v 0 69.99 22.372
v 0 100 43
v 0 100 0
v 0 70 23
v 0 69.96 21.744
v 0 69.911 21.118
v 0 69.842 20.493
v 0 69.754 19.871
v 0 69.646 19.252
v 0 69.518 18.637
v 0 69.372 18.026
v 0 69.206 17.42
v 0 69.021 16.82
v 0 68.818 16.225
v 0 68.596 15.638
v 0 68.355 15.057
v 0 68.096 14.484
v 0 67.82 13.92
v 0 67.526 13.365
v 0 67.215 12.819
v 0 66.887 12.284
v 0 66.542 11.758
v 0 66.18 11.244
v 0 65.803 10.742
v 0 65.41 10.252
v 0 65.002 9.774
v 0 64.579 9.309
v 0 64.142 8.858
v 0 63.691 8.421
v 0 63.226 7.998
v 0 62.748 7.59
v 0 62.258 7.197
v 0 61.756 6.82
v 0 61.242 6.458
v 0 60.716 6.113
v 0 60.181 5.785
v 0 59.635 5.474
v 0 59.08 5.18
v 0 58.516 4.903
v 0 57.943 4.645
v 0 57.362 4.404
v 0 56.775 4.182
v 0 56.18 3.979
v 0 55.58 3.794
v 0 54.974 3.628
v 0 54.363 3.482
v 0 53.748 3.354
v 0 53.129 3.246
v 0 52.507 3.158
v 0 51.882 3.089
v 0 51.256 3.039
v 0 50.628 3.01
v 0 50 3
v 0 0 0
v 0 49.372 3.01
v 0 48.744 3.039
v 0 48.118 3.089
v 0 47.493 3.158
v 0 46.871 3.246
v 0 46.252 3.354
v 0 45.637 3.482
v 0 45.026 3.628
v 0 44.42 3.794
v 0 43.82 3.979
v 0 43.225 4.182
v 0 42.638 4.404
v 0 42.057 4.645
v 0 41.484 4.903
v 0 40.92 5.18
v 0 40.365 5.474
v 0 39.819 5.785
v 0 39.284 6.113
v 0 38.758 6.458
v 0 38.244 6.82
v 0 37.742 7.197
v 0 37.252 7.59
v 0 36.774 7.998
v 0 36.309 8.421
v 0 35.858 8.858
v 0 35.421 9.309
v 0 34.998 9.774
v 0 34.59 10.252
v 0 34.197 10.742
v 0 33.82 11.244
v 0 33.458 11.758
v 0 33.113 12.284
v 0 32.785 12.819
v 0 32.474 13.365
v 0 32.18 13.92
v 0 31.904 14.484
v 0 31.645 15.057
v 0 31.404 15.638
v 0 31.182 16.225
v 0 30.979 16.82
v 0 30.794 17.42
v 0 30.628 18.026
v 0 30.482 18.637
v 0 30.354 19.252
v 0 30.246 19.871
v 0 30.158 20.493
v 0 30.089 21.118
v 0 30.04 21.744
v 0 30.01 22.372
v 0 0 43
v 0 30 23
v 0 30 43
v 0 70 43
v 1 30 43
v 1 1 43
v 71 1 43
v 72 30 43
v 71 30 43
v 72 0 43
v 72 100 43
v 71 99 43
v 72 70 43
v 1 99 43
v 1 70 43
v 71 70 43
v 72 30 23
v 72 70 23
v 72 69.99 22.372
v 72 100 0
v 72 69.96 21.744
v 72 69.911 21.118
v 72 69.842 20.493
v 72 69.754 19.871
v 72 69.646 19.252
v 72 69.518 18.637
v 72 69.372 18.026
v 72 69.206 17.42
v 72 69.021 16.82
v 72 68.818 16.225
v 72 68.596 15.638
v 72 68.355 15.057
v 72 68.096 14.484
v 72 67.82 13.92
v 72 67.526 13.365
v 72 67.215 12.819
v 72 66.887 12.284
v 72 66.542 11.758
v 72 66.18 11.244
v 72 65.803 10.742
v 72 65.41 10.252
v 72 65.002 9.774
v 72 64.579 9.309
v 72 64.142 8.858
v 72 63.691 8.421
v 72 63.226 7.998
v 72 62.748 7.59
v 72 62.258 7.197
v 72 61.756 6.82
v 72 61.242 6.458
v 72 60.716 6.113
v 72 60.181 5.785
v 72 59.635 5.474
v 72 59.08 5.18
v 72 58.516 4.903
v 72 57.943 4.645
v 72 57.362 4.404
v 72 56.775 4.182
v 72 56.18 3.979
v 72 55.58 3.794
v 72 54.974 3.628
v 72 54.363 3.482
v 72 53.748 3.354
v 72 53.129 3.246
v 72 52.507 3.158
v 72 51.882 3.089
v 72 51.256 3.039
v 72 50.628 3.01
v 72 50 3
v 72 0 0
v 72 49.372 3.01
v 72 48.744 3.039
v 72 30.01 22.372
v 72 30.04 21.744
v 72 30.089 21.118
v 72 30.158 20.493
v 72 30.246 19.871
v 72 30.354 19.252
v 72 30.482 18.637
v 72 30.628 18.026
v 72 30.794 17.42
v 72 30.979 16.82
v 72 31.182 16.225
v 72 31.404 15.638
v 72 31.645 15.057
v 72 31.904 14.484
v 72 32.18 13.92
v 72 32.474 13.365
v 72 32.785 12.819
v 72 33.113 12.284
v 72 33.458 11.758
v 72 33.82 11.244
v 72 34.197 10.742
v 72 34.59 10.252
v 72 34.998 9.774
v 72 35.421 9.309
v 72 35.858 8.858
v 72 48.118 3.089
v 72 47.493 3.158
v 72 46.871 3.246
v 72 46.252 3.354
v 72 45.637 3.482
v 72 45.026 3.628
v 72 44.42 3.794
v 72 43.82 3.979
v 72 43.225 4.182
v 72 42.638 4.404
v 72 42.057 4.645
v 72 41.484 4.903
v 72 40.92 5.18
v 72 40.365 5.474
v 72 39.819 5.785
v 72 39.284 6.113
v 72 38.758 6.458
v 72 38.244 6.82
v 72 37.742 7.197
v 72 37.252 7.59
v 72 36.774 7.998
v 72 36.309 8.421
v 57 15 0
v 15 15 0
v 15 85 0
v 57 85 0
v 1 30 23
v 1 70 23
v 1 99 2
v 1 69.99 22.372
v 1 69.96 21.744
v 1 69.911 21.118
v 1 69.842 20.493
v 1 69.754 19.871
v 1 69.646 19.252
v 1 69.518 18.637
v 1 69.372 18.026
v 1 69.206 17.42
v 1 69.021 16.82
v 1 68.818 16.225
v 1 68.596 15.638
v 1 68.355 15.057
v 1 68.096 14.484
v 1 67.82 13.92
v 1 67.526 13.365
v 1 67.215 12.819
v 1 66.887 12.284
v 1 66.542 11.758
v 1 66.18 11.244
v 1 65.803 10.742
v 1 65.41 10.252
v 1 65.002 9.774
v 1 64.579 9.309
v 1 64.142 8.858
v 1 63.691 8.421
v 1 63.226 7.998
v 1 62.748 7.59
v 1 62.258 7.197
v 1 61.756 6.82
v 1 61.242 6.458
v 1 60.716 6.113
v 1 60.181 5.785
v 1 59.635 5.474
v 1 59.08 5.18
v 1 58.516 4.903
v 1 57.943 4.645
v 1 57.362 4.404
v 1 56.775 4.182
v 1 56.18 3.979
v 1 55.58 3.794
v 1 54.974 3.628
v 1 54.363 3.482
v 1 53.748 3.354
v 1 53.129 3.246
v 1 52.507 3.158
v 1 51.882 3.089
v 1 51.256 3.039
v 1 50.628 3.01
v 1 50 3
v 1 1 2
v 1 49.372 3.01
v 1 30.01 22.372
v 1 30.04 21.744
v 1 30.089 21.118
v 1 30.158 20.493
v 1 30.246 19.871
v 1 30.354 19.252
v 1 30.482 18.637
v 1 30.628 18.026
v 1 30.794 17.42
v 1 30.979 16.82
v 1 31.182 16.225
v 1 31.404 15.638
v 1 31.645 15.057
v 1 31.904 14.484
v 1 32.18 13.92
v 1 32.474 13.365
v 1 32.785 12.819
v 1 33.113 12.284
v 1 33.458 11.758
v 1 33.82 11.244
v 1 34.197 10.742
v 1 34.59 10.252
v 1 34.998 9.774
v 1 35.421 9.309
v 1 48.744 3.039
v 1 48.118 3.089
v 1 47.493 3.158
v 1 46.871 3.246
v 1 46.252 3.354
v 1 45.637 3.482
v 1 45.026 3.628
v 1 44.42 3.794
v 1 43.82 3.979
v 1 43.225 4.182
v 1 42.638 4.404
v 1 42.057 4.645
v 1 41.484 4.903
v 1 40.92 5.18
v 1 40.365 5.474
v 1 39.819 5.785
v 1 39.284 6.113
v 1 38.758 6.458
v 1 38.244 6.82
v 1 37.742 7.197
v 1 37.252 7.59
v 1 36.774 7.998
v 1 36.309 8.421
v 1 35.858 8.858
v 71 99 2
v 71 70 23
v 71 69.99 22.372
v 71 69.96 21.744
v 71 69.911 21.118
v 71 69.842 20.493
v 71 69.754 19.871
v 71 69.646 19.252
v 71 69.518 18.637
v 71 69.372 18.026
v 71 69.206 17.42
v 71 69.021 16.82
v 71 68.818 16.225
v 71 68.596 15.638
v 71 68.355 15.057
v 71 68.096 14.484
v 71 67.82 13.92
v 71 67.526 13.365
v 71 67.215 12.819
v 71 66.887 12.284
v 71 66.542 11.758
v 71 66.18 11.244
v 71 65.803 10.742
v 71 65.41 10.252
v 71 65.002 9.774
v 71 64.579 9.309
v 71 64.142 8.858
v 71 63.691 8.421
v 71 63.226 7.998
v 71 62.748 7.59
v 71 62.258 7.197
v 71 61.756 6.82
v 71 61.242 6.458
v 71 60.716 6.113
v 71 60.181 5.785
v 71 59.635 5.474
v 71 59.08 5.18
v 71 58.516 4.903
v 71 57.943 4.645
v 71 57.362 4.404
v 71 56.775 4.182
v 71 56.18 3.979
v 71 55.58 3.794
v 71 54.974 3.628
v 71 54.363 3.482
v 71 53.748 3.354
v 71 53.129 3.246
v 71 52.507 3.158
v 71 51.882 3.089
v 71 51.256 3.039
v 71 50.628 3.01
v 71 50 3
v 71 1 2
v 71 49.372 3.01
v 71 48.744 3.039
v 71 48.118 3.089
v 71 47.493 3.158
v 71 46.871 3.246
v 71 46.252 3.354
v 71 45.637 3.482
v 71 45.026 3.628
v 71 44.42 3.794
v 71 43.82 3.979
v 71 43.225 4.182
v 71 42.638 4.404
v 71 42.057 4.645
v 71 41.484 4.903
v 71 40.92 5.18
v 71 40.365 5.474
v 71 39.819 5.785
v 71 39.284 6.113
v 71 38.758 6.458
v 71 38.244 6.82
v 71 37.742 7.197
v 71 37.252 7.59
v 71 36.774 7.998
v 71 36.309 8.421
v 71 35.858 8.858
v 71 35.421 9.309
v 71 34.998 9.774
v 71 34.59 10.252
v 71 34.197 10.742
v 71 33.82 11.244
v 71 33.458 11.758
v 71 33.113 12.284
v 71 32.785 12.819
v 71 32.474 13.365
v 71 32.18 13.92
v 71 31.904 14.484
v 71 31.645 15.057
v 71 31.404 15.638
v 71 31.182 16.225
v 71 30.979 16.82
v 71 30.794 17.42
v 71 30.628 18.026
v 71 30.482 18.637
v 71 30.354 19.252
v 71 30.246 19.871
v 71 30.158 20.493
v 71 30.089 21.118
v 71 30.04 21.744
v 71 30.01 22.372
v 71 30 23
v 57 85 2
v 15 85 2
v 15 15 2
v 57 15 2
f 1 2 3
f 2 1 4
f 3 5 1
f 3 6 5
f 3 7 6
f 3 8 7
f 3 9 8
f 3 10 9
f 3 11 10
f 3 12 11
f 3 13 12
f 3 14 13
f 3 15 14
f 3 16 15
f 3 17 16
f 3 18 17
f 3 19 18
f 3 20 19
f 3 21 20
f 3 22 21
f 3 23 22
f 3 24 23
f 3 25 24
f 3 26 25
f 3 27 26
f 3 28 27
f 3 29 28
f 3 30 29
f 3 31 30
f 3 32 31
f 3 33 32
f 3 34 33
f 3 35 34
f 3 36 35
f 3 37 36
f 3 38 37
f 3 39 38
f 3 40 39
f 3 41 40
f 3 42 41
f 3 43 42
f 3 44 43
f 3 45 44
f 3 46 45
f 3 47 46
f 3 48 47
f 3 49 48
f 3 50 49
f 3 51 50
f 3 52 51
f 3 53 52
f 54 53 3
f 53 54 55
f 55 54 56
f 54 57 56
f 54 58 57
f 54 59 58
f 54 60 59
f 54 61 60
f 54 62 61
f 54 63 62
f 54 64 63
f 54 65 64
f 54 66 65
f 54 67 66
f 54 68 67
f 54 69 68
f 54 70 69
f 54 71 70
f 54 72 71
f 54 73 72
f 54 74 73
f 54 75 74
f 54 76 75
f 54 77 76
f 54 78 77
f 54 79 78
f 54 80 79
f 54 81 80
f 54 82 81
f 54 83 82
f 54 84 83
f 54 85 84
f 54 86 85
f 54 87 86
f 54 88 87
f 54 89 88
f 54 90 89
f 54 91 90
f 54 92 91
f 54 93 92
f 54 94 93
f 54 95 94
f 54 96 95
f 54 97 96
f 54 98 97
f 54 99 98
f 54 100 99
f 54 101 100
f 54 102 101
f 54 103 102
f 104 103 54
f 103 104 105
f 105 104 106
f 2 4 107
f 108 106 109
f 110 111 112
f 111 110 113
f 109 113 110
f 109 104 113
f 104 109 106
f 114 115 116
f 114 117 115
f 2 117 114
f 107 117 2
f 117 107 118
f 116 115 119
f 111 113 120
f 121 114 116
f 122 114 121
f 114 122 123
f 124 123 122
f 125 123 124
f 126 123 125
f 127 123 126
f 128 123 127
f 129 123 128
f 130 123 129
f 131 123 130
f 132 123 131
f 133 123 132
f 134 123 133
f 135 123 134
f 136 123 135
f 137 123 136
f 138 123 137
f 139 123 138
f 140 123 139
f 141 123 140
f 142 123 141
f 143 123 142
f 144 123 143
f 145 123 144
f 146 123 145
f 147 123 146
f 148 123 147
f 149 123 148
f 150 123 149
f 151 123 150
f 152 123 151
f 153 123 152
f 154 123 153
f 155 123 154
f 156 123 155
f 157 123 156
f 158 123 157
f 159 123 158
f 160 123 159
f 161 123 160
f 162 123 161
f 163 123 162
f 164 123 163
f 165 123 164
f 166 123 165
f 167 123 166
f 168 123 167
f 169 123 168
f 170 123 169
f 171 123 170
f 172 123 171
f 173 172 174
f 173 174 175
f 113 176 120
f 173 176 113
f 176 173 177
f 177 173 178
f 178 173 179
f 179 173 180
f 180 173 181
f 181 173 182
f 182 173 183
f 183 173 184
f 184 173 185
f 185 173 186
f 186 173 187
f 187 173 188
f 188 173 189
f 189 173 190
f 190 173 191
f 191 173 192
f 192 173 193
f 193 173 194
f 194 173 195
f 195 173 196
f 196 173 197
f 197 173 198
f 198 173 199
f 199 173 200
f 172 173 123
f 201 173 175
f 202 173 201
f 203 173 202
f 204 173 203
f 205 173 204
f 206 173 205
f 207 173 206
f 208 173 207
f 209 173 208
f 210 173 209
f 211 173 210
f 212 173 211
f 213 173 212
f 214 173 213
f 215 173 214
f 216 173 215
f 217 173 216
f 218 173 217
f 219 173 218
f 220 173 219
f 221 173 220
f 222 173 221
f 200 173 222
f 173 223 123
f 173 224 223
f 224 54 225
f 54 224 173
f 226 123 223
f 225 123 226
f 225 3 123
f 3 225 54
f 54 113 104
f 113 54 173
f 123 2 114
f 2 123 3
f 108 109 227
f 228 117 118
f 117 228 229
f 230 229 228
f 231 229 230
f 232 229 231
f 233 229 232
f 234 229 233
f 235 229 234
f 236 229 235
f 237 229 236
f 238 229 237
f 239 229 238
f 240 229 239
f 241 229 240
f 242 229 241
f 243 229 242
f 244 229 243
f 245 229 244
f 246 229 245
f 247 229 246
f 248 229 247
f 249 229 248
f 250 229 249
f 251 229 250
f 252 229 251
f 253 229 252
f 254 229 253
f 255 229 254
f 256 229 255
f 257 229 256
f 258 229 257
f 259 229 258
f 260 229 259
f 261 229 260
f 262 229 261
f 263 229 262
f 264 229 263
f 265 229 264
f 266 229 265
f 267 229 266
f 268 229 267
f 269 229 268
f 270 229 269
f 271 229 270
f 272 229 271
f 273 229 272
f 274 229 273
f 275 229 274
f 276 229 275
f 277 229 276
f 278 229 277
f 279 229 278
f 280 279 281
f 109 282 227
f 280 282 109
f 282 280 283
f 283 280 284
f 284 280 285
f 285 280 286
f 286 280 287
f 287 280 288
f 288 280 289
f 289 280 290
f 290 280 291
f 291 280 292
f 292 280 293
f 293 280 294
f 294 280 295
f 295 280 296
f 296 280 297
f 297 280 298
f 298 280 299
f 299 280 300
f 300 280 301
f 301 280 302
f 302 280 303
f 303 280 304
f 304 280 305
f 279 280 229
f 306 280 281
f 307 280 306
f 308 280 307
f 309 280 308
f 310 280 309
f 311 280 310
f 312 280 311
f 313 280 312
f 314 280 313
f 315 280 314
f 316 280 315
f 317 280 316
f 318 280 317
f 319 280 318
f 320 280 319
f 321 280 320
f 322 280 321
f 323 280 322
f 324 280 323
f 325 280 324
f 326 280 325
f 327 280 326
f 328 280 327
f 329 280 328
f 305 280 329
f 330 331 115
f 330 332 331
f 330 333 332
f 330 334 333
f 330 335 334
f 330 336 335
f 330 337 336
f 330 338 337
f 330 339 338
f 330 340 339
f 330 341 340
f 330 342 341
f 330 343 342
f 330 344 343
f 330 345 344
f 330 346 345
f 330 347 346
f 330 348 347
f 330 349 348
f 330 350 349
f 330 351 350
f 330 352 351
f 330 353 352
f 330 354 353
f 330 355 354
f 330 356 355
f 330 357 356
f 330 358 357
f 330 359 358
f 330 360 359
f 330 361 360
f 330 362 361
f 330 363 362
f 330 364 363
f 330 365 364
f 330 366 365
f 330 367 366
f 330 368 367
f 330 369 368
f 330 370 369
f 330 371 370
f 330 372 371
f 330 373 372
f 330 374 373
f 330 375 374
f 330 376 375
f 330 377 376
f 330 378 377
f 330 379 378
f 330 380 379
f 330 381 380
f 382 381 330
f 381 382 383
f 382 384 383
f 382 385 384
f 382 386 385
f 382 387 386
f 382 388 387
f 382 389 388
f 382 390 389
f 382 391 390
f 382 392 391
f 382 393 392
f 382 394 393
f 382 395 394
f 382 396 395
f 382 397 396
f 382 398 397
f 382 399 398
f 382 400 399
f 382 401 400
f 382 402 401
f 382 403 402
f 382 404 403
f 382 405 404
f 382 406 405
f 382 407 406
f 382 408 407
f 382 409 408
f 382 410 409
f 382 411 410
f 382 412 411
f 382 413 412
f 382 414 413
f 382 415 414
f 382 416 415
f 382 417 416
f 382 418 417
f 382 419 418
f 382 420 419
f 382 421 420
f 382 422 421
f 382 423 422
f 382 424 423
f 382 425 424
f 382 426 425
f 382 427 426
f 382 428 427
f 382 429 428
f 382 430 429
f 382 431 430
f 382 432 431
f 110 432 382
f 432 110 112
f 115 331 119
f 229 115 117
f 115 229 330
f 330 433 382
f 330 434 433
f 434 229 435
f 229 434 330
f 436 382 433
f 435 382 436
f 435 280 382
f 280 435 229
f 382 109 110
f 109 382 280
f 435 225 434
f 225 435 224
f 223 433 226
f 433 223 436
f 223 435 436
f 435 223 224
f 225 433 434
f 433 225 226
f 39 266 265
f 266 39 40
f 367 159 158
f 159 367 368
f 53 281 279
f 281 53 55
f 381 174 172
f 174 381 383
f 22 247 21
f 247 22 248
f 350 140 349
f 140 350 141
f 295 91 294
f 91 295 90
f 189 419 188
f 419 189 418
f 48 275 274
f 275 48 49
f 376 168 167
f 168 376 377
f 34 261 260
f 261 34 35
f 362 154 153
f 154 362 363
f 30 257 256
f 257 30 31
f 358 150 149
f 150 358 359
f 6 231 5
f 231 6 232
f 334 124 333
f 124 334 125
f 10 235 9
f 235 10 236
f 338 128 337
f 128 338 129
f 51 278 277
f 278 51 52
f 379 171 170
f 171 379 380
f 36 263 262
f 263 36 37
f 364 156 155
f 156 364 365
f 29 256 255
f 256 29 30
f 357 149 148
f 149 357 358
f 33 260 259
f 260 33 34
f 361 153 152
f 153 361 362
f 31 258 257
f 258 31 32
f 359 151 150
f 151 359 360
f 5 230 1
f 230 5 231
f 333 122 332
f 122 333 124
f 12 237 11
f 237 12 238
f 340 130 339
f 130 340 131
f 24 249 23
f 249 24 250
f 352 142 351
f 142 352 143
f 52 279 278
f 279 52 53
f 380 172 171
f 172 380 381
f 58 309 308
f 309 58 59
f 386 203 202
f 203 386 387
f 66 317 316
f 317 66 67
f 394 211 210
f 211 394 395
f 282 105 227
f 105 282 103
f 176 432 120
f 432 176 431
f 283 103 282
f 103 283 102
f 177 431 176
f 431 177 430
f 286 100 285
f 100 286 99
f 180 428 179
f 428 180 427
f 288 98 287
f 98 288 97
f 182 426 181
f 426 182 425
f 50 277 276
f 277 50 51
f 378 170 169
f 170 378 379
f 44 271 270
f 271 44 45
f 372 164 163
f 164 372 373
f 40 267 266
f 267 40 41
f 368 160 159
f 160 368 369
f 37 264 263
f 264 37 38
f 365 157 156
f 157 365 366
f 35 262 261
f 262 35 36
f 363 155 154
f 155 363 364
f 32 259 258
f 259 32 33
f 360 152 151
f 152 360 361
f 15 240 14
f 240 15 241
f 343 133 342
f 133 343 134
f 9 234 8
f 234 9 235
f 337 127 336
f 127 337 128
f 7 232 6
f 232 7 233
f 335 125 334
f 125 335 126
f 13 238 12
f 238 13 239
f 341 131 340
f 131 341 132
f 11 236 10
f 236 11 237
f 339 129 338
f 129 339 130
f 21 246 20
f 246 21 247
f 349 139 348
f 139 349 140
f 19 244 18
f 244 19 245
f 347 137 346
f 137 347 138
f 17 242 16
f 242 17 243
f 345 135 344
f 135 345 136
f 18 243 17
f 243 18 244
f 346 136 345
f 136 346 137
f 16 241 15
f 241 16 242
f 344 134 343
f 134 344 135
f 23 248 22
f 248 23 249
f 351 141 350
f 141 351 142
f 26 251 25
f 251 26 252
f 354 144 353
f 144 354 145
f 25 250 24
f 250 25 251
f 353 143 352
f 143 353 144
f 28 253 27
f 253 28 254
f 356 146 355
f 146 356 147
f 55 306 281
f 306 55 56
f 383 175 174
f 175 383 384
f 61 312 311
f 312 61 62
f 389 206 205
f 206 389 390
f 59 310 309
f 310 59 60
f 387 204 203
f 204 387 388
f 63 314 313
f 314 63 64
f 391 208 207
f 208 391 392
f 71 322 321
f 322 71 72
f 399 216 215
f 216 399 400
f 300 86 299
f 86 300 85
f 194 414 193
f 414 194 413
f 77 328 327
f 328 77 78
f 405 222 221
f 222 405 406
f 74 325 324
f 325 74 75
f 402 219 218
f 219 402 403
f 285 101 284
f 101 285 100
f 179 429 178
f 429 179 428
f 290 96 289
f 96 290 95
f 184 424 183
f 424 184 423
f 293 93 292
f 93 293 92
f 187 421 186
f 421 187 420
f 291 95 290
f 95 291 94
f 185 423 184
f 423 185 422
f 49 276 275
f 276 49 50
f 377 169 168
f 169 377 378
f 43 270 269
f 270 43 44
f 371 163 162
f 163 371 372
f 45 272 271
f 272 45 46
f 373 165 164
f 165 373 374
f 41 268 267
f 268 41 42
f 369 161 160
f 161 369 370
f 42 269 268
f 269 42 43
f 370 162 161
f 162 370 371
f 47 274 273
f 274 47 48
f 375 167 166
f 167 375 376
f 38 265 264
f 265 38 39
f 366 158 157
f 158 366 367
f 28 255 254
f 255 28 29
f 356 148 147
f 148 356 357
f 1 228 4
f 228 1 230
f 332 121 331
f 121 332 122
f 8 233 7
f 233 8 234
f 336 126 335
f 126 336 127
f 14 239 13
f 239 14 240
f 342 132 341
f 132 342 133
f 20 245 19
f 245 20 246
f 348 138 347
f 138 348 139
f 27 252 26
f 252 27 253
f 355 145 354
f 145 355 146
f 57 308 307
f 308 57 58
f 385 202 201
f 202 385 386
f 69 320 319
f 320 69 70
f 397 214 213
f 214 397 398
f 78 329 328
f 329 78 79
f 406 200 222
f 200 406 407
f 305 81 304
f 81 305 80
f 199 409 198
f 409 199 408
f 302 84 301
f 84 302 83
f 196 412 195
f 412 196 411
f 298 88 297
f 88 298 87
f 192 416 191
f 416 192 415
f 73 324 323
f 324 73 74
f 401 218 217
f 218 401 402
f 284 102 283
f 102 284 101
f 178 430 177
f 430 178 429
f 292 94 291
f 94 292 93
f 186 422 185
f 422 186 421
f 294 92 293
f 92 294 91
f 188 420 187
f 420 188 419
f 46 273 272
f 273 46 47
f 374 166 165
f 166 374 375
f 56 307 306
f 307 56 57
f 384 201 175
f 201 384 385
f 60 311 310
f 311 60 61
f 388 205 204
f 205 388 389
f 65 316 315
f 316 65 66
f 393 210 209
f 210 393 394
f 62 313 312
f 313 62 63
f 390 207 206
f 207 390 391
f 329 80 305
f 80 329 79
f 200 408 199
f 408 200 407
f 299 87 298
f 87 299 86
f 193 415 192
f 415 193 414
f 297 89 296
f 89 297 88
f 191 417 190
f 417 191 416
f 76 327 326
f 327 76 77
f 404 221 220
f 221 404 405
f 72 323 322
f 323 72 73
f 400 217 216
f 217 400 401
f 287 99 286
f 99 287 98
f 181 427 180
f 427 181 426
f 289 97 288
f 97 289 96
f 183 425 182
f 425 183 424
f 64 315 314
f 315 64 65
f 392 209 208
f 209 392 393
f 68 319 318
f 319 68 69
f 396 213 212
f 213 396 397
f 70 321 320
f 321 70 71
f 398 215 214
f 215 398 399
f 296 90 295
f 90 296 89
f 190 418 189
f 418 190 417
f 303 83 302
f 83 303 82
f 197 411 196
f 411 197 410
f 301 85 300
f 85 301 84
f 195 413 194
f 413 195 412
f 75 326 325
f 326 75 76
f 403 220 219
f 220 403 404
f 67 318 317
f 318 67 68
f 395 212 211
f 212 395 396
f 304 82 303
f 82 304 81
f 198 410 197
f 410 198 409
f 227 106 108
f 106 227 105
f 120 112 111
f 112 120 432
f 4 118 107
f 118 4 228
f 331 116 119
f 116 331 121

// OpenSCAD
$fn=200;

THICK = 1;

CARD_L = 96;
CARD_W = 68;
CARD_STACK = 38;

STUMP = 3;
MARGIN = 15;

BOX_W = CARD_W + (THICK * 2) + 2;
BOX_L = CARD_L + (THICK * 2) + 2;
BOX_H = CARD_STACK + (THICK * 2) + STUMP;

difference() {
    cube(size = [
        BOX_W,
        BOX_L, 
        BOX_H]);

    translate([
        THICK, 
        THICK, 
        BOX_H - CARD_STACK - STUMP]) {
            
        cube(size = [
            CARD_W + 2,
            CARD_L + 2,
            CARD_STACK + STUMP + 1]);
    }

    translate([
        MARGIN,
        MARGIN,
        -1]) {

        cube(size = [
            BOX_W - (MARGIN * 2),
            BOX_L - (MARGIN * 2),
            10]);
    }


    translate([
        -1,
        BOX_L / 2,
        20 + STUMP]) {

        rotate([0, 90, 0]) {
            cylinder(
                h = 1000,
                r = 20);
        }
    }

    translate([
        -1, 
        (BOX_L / 2) - 20, 
        20 + STUMP]) {
            
        cube(size = [
            150,
            40,
            80]);
    }

}
